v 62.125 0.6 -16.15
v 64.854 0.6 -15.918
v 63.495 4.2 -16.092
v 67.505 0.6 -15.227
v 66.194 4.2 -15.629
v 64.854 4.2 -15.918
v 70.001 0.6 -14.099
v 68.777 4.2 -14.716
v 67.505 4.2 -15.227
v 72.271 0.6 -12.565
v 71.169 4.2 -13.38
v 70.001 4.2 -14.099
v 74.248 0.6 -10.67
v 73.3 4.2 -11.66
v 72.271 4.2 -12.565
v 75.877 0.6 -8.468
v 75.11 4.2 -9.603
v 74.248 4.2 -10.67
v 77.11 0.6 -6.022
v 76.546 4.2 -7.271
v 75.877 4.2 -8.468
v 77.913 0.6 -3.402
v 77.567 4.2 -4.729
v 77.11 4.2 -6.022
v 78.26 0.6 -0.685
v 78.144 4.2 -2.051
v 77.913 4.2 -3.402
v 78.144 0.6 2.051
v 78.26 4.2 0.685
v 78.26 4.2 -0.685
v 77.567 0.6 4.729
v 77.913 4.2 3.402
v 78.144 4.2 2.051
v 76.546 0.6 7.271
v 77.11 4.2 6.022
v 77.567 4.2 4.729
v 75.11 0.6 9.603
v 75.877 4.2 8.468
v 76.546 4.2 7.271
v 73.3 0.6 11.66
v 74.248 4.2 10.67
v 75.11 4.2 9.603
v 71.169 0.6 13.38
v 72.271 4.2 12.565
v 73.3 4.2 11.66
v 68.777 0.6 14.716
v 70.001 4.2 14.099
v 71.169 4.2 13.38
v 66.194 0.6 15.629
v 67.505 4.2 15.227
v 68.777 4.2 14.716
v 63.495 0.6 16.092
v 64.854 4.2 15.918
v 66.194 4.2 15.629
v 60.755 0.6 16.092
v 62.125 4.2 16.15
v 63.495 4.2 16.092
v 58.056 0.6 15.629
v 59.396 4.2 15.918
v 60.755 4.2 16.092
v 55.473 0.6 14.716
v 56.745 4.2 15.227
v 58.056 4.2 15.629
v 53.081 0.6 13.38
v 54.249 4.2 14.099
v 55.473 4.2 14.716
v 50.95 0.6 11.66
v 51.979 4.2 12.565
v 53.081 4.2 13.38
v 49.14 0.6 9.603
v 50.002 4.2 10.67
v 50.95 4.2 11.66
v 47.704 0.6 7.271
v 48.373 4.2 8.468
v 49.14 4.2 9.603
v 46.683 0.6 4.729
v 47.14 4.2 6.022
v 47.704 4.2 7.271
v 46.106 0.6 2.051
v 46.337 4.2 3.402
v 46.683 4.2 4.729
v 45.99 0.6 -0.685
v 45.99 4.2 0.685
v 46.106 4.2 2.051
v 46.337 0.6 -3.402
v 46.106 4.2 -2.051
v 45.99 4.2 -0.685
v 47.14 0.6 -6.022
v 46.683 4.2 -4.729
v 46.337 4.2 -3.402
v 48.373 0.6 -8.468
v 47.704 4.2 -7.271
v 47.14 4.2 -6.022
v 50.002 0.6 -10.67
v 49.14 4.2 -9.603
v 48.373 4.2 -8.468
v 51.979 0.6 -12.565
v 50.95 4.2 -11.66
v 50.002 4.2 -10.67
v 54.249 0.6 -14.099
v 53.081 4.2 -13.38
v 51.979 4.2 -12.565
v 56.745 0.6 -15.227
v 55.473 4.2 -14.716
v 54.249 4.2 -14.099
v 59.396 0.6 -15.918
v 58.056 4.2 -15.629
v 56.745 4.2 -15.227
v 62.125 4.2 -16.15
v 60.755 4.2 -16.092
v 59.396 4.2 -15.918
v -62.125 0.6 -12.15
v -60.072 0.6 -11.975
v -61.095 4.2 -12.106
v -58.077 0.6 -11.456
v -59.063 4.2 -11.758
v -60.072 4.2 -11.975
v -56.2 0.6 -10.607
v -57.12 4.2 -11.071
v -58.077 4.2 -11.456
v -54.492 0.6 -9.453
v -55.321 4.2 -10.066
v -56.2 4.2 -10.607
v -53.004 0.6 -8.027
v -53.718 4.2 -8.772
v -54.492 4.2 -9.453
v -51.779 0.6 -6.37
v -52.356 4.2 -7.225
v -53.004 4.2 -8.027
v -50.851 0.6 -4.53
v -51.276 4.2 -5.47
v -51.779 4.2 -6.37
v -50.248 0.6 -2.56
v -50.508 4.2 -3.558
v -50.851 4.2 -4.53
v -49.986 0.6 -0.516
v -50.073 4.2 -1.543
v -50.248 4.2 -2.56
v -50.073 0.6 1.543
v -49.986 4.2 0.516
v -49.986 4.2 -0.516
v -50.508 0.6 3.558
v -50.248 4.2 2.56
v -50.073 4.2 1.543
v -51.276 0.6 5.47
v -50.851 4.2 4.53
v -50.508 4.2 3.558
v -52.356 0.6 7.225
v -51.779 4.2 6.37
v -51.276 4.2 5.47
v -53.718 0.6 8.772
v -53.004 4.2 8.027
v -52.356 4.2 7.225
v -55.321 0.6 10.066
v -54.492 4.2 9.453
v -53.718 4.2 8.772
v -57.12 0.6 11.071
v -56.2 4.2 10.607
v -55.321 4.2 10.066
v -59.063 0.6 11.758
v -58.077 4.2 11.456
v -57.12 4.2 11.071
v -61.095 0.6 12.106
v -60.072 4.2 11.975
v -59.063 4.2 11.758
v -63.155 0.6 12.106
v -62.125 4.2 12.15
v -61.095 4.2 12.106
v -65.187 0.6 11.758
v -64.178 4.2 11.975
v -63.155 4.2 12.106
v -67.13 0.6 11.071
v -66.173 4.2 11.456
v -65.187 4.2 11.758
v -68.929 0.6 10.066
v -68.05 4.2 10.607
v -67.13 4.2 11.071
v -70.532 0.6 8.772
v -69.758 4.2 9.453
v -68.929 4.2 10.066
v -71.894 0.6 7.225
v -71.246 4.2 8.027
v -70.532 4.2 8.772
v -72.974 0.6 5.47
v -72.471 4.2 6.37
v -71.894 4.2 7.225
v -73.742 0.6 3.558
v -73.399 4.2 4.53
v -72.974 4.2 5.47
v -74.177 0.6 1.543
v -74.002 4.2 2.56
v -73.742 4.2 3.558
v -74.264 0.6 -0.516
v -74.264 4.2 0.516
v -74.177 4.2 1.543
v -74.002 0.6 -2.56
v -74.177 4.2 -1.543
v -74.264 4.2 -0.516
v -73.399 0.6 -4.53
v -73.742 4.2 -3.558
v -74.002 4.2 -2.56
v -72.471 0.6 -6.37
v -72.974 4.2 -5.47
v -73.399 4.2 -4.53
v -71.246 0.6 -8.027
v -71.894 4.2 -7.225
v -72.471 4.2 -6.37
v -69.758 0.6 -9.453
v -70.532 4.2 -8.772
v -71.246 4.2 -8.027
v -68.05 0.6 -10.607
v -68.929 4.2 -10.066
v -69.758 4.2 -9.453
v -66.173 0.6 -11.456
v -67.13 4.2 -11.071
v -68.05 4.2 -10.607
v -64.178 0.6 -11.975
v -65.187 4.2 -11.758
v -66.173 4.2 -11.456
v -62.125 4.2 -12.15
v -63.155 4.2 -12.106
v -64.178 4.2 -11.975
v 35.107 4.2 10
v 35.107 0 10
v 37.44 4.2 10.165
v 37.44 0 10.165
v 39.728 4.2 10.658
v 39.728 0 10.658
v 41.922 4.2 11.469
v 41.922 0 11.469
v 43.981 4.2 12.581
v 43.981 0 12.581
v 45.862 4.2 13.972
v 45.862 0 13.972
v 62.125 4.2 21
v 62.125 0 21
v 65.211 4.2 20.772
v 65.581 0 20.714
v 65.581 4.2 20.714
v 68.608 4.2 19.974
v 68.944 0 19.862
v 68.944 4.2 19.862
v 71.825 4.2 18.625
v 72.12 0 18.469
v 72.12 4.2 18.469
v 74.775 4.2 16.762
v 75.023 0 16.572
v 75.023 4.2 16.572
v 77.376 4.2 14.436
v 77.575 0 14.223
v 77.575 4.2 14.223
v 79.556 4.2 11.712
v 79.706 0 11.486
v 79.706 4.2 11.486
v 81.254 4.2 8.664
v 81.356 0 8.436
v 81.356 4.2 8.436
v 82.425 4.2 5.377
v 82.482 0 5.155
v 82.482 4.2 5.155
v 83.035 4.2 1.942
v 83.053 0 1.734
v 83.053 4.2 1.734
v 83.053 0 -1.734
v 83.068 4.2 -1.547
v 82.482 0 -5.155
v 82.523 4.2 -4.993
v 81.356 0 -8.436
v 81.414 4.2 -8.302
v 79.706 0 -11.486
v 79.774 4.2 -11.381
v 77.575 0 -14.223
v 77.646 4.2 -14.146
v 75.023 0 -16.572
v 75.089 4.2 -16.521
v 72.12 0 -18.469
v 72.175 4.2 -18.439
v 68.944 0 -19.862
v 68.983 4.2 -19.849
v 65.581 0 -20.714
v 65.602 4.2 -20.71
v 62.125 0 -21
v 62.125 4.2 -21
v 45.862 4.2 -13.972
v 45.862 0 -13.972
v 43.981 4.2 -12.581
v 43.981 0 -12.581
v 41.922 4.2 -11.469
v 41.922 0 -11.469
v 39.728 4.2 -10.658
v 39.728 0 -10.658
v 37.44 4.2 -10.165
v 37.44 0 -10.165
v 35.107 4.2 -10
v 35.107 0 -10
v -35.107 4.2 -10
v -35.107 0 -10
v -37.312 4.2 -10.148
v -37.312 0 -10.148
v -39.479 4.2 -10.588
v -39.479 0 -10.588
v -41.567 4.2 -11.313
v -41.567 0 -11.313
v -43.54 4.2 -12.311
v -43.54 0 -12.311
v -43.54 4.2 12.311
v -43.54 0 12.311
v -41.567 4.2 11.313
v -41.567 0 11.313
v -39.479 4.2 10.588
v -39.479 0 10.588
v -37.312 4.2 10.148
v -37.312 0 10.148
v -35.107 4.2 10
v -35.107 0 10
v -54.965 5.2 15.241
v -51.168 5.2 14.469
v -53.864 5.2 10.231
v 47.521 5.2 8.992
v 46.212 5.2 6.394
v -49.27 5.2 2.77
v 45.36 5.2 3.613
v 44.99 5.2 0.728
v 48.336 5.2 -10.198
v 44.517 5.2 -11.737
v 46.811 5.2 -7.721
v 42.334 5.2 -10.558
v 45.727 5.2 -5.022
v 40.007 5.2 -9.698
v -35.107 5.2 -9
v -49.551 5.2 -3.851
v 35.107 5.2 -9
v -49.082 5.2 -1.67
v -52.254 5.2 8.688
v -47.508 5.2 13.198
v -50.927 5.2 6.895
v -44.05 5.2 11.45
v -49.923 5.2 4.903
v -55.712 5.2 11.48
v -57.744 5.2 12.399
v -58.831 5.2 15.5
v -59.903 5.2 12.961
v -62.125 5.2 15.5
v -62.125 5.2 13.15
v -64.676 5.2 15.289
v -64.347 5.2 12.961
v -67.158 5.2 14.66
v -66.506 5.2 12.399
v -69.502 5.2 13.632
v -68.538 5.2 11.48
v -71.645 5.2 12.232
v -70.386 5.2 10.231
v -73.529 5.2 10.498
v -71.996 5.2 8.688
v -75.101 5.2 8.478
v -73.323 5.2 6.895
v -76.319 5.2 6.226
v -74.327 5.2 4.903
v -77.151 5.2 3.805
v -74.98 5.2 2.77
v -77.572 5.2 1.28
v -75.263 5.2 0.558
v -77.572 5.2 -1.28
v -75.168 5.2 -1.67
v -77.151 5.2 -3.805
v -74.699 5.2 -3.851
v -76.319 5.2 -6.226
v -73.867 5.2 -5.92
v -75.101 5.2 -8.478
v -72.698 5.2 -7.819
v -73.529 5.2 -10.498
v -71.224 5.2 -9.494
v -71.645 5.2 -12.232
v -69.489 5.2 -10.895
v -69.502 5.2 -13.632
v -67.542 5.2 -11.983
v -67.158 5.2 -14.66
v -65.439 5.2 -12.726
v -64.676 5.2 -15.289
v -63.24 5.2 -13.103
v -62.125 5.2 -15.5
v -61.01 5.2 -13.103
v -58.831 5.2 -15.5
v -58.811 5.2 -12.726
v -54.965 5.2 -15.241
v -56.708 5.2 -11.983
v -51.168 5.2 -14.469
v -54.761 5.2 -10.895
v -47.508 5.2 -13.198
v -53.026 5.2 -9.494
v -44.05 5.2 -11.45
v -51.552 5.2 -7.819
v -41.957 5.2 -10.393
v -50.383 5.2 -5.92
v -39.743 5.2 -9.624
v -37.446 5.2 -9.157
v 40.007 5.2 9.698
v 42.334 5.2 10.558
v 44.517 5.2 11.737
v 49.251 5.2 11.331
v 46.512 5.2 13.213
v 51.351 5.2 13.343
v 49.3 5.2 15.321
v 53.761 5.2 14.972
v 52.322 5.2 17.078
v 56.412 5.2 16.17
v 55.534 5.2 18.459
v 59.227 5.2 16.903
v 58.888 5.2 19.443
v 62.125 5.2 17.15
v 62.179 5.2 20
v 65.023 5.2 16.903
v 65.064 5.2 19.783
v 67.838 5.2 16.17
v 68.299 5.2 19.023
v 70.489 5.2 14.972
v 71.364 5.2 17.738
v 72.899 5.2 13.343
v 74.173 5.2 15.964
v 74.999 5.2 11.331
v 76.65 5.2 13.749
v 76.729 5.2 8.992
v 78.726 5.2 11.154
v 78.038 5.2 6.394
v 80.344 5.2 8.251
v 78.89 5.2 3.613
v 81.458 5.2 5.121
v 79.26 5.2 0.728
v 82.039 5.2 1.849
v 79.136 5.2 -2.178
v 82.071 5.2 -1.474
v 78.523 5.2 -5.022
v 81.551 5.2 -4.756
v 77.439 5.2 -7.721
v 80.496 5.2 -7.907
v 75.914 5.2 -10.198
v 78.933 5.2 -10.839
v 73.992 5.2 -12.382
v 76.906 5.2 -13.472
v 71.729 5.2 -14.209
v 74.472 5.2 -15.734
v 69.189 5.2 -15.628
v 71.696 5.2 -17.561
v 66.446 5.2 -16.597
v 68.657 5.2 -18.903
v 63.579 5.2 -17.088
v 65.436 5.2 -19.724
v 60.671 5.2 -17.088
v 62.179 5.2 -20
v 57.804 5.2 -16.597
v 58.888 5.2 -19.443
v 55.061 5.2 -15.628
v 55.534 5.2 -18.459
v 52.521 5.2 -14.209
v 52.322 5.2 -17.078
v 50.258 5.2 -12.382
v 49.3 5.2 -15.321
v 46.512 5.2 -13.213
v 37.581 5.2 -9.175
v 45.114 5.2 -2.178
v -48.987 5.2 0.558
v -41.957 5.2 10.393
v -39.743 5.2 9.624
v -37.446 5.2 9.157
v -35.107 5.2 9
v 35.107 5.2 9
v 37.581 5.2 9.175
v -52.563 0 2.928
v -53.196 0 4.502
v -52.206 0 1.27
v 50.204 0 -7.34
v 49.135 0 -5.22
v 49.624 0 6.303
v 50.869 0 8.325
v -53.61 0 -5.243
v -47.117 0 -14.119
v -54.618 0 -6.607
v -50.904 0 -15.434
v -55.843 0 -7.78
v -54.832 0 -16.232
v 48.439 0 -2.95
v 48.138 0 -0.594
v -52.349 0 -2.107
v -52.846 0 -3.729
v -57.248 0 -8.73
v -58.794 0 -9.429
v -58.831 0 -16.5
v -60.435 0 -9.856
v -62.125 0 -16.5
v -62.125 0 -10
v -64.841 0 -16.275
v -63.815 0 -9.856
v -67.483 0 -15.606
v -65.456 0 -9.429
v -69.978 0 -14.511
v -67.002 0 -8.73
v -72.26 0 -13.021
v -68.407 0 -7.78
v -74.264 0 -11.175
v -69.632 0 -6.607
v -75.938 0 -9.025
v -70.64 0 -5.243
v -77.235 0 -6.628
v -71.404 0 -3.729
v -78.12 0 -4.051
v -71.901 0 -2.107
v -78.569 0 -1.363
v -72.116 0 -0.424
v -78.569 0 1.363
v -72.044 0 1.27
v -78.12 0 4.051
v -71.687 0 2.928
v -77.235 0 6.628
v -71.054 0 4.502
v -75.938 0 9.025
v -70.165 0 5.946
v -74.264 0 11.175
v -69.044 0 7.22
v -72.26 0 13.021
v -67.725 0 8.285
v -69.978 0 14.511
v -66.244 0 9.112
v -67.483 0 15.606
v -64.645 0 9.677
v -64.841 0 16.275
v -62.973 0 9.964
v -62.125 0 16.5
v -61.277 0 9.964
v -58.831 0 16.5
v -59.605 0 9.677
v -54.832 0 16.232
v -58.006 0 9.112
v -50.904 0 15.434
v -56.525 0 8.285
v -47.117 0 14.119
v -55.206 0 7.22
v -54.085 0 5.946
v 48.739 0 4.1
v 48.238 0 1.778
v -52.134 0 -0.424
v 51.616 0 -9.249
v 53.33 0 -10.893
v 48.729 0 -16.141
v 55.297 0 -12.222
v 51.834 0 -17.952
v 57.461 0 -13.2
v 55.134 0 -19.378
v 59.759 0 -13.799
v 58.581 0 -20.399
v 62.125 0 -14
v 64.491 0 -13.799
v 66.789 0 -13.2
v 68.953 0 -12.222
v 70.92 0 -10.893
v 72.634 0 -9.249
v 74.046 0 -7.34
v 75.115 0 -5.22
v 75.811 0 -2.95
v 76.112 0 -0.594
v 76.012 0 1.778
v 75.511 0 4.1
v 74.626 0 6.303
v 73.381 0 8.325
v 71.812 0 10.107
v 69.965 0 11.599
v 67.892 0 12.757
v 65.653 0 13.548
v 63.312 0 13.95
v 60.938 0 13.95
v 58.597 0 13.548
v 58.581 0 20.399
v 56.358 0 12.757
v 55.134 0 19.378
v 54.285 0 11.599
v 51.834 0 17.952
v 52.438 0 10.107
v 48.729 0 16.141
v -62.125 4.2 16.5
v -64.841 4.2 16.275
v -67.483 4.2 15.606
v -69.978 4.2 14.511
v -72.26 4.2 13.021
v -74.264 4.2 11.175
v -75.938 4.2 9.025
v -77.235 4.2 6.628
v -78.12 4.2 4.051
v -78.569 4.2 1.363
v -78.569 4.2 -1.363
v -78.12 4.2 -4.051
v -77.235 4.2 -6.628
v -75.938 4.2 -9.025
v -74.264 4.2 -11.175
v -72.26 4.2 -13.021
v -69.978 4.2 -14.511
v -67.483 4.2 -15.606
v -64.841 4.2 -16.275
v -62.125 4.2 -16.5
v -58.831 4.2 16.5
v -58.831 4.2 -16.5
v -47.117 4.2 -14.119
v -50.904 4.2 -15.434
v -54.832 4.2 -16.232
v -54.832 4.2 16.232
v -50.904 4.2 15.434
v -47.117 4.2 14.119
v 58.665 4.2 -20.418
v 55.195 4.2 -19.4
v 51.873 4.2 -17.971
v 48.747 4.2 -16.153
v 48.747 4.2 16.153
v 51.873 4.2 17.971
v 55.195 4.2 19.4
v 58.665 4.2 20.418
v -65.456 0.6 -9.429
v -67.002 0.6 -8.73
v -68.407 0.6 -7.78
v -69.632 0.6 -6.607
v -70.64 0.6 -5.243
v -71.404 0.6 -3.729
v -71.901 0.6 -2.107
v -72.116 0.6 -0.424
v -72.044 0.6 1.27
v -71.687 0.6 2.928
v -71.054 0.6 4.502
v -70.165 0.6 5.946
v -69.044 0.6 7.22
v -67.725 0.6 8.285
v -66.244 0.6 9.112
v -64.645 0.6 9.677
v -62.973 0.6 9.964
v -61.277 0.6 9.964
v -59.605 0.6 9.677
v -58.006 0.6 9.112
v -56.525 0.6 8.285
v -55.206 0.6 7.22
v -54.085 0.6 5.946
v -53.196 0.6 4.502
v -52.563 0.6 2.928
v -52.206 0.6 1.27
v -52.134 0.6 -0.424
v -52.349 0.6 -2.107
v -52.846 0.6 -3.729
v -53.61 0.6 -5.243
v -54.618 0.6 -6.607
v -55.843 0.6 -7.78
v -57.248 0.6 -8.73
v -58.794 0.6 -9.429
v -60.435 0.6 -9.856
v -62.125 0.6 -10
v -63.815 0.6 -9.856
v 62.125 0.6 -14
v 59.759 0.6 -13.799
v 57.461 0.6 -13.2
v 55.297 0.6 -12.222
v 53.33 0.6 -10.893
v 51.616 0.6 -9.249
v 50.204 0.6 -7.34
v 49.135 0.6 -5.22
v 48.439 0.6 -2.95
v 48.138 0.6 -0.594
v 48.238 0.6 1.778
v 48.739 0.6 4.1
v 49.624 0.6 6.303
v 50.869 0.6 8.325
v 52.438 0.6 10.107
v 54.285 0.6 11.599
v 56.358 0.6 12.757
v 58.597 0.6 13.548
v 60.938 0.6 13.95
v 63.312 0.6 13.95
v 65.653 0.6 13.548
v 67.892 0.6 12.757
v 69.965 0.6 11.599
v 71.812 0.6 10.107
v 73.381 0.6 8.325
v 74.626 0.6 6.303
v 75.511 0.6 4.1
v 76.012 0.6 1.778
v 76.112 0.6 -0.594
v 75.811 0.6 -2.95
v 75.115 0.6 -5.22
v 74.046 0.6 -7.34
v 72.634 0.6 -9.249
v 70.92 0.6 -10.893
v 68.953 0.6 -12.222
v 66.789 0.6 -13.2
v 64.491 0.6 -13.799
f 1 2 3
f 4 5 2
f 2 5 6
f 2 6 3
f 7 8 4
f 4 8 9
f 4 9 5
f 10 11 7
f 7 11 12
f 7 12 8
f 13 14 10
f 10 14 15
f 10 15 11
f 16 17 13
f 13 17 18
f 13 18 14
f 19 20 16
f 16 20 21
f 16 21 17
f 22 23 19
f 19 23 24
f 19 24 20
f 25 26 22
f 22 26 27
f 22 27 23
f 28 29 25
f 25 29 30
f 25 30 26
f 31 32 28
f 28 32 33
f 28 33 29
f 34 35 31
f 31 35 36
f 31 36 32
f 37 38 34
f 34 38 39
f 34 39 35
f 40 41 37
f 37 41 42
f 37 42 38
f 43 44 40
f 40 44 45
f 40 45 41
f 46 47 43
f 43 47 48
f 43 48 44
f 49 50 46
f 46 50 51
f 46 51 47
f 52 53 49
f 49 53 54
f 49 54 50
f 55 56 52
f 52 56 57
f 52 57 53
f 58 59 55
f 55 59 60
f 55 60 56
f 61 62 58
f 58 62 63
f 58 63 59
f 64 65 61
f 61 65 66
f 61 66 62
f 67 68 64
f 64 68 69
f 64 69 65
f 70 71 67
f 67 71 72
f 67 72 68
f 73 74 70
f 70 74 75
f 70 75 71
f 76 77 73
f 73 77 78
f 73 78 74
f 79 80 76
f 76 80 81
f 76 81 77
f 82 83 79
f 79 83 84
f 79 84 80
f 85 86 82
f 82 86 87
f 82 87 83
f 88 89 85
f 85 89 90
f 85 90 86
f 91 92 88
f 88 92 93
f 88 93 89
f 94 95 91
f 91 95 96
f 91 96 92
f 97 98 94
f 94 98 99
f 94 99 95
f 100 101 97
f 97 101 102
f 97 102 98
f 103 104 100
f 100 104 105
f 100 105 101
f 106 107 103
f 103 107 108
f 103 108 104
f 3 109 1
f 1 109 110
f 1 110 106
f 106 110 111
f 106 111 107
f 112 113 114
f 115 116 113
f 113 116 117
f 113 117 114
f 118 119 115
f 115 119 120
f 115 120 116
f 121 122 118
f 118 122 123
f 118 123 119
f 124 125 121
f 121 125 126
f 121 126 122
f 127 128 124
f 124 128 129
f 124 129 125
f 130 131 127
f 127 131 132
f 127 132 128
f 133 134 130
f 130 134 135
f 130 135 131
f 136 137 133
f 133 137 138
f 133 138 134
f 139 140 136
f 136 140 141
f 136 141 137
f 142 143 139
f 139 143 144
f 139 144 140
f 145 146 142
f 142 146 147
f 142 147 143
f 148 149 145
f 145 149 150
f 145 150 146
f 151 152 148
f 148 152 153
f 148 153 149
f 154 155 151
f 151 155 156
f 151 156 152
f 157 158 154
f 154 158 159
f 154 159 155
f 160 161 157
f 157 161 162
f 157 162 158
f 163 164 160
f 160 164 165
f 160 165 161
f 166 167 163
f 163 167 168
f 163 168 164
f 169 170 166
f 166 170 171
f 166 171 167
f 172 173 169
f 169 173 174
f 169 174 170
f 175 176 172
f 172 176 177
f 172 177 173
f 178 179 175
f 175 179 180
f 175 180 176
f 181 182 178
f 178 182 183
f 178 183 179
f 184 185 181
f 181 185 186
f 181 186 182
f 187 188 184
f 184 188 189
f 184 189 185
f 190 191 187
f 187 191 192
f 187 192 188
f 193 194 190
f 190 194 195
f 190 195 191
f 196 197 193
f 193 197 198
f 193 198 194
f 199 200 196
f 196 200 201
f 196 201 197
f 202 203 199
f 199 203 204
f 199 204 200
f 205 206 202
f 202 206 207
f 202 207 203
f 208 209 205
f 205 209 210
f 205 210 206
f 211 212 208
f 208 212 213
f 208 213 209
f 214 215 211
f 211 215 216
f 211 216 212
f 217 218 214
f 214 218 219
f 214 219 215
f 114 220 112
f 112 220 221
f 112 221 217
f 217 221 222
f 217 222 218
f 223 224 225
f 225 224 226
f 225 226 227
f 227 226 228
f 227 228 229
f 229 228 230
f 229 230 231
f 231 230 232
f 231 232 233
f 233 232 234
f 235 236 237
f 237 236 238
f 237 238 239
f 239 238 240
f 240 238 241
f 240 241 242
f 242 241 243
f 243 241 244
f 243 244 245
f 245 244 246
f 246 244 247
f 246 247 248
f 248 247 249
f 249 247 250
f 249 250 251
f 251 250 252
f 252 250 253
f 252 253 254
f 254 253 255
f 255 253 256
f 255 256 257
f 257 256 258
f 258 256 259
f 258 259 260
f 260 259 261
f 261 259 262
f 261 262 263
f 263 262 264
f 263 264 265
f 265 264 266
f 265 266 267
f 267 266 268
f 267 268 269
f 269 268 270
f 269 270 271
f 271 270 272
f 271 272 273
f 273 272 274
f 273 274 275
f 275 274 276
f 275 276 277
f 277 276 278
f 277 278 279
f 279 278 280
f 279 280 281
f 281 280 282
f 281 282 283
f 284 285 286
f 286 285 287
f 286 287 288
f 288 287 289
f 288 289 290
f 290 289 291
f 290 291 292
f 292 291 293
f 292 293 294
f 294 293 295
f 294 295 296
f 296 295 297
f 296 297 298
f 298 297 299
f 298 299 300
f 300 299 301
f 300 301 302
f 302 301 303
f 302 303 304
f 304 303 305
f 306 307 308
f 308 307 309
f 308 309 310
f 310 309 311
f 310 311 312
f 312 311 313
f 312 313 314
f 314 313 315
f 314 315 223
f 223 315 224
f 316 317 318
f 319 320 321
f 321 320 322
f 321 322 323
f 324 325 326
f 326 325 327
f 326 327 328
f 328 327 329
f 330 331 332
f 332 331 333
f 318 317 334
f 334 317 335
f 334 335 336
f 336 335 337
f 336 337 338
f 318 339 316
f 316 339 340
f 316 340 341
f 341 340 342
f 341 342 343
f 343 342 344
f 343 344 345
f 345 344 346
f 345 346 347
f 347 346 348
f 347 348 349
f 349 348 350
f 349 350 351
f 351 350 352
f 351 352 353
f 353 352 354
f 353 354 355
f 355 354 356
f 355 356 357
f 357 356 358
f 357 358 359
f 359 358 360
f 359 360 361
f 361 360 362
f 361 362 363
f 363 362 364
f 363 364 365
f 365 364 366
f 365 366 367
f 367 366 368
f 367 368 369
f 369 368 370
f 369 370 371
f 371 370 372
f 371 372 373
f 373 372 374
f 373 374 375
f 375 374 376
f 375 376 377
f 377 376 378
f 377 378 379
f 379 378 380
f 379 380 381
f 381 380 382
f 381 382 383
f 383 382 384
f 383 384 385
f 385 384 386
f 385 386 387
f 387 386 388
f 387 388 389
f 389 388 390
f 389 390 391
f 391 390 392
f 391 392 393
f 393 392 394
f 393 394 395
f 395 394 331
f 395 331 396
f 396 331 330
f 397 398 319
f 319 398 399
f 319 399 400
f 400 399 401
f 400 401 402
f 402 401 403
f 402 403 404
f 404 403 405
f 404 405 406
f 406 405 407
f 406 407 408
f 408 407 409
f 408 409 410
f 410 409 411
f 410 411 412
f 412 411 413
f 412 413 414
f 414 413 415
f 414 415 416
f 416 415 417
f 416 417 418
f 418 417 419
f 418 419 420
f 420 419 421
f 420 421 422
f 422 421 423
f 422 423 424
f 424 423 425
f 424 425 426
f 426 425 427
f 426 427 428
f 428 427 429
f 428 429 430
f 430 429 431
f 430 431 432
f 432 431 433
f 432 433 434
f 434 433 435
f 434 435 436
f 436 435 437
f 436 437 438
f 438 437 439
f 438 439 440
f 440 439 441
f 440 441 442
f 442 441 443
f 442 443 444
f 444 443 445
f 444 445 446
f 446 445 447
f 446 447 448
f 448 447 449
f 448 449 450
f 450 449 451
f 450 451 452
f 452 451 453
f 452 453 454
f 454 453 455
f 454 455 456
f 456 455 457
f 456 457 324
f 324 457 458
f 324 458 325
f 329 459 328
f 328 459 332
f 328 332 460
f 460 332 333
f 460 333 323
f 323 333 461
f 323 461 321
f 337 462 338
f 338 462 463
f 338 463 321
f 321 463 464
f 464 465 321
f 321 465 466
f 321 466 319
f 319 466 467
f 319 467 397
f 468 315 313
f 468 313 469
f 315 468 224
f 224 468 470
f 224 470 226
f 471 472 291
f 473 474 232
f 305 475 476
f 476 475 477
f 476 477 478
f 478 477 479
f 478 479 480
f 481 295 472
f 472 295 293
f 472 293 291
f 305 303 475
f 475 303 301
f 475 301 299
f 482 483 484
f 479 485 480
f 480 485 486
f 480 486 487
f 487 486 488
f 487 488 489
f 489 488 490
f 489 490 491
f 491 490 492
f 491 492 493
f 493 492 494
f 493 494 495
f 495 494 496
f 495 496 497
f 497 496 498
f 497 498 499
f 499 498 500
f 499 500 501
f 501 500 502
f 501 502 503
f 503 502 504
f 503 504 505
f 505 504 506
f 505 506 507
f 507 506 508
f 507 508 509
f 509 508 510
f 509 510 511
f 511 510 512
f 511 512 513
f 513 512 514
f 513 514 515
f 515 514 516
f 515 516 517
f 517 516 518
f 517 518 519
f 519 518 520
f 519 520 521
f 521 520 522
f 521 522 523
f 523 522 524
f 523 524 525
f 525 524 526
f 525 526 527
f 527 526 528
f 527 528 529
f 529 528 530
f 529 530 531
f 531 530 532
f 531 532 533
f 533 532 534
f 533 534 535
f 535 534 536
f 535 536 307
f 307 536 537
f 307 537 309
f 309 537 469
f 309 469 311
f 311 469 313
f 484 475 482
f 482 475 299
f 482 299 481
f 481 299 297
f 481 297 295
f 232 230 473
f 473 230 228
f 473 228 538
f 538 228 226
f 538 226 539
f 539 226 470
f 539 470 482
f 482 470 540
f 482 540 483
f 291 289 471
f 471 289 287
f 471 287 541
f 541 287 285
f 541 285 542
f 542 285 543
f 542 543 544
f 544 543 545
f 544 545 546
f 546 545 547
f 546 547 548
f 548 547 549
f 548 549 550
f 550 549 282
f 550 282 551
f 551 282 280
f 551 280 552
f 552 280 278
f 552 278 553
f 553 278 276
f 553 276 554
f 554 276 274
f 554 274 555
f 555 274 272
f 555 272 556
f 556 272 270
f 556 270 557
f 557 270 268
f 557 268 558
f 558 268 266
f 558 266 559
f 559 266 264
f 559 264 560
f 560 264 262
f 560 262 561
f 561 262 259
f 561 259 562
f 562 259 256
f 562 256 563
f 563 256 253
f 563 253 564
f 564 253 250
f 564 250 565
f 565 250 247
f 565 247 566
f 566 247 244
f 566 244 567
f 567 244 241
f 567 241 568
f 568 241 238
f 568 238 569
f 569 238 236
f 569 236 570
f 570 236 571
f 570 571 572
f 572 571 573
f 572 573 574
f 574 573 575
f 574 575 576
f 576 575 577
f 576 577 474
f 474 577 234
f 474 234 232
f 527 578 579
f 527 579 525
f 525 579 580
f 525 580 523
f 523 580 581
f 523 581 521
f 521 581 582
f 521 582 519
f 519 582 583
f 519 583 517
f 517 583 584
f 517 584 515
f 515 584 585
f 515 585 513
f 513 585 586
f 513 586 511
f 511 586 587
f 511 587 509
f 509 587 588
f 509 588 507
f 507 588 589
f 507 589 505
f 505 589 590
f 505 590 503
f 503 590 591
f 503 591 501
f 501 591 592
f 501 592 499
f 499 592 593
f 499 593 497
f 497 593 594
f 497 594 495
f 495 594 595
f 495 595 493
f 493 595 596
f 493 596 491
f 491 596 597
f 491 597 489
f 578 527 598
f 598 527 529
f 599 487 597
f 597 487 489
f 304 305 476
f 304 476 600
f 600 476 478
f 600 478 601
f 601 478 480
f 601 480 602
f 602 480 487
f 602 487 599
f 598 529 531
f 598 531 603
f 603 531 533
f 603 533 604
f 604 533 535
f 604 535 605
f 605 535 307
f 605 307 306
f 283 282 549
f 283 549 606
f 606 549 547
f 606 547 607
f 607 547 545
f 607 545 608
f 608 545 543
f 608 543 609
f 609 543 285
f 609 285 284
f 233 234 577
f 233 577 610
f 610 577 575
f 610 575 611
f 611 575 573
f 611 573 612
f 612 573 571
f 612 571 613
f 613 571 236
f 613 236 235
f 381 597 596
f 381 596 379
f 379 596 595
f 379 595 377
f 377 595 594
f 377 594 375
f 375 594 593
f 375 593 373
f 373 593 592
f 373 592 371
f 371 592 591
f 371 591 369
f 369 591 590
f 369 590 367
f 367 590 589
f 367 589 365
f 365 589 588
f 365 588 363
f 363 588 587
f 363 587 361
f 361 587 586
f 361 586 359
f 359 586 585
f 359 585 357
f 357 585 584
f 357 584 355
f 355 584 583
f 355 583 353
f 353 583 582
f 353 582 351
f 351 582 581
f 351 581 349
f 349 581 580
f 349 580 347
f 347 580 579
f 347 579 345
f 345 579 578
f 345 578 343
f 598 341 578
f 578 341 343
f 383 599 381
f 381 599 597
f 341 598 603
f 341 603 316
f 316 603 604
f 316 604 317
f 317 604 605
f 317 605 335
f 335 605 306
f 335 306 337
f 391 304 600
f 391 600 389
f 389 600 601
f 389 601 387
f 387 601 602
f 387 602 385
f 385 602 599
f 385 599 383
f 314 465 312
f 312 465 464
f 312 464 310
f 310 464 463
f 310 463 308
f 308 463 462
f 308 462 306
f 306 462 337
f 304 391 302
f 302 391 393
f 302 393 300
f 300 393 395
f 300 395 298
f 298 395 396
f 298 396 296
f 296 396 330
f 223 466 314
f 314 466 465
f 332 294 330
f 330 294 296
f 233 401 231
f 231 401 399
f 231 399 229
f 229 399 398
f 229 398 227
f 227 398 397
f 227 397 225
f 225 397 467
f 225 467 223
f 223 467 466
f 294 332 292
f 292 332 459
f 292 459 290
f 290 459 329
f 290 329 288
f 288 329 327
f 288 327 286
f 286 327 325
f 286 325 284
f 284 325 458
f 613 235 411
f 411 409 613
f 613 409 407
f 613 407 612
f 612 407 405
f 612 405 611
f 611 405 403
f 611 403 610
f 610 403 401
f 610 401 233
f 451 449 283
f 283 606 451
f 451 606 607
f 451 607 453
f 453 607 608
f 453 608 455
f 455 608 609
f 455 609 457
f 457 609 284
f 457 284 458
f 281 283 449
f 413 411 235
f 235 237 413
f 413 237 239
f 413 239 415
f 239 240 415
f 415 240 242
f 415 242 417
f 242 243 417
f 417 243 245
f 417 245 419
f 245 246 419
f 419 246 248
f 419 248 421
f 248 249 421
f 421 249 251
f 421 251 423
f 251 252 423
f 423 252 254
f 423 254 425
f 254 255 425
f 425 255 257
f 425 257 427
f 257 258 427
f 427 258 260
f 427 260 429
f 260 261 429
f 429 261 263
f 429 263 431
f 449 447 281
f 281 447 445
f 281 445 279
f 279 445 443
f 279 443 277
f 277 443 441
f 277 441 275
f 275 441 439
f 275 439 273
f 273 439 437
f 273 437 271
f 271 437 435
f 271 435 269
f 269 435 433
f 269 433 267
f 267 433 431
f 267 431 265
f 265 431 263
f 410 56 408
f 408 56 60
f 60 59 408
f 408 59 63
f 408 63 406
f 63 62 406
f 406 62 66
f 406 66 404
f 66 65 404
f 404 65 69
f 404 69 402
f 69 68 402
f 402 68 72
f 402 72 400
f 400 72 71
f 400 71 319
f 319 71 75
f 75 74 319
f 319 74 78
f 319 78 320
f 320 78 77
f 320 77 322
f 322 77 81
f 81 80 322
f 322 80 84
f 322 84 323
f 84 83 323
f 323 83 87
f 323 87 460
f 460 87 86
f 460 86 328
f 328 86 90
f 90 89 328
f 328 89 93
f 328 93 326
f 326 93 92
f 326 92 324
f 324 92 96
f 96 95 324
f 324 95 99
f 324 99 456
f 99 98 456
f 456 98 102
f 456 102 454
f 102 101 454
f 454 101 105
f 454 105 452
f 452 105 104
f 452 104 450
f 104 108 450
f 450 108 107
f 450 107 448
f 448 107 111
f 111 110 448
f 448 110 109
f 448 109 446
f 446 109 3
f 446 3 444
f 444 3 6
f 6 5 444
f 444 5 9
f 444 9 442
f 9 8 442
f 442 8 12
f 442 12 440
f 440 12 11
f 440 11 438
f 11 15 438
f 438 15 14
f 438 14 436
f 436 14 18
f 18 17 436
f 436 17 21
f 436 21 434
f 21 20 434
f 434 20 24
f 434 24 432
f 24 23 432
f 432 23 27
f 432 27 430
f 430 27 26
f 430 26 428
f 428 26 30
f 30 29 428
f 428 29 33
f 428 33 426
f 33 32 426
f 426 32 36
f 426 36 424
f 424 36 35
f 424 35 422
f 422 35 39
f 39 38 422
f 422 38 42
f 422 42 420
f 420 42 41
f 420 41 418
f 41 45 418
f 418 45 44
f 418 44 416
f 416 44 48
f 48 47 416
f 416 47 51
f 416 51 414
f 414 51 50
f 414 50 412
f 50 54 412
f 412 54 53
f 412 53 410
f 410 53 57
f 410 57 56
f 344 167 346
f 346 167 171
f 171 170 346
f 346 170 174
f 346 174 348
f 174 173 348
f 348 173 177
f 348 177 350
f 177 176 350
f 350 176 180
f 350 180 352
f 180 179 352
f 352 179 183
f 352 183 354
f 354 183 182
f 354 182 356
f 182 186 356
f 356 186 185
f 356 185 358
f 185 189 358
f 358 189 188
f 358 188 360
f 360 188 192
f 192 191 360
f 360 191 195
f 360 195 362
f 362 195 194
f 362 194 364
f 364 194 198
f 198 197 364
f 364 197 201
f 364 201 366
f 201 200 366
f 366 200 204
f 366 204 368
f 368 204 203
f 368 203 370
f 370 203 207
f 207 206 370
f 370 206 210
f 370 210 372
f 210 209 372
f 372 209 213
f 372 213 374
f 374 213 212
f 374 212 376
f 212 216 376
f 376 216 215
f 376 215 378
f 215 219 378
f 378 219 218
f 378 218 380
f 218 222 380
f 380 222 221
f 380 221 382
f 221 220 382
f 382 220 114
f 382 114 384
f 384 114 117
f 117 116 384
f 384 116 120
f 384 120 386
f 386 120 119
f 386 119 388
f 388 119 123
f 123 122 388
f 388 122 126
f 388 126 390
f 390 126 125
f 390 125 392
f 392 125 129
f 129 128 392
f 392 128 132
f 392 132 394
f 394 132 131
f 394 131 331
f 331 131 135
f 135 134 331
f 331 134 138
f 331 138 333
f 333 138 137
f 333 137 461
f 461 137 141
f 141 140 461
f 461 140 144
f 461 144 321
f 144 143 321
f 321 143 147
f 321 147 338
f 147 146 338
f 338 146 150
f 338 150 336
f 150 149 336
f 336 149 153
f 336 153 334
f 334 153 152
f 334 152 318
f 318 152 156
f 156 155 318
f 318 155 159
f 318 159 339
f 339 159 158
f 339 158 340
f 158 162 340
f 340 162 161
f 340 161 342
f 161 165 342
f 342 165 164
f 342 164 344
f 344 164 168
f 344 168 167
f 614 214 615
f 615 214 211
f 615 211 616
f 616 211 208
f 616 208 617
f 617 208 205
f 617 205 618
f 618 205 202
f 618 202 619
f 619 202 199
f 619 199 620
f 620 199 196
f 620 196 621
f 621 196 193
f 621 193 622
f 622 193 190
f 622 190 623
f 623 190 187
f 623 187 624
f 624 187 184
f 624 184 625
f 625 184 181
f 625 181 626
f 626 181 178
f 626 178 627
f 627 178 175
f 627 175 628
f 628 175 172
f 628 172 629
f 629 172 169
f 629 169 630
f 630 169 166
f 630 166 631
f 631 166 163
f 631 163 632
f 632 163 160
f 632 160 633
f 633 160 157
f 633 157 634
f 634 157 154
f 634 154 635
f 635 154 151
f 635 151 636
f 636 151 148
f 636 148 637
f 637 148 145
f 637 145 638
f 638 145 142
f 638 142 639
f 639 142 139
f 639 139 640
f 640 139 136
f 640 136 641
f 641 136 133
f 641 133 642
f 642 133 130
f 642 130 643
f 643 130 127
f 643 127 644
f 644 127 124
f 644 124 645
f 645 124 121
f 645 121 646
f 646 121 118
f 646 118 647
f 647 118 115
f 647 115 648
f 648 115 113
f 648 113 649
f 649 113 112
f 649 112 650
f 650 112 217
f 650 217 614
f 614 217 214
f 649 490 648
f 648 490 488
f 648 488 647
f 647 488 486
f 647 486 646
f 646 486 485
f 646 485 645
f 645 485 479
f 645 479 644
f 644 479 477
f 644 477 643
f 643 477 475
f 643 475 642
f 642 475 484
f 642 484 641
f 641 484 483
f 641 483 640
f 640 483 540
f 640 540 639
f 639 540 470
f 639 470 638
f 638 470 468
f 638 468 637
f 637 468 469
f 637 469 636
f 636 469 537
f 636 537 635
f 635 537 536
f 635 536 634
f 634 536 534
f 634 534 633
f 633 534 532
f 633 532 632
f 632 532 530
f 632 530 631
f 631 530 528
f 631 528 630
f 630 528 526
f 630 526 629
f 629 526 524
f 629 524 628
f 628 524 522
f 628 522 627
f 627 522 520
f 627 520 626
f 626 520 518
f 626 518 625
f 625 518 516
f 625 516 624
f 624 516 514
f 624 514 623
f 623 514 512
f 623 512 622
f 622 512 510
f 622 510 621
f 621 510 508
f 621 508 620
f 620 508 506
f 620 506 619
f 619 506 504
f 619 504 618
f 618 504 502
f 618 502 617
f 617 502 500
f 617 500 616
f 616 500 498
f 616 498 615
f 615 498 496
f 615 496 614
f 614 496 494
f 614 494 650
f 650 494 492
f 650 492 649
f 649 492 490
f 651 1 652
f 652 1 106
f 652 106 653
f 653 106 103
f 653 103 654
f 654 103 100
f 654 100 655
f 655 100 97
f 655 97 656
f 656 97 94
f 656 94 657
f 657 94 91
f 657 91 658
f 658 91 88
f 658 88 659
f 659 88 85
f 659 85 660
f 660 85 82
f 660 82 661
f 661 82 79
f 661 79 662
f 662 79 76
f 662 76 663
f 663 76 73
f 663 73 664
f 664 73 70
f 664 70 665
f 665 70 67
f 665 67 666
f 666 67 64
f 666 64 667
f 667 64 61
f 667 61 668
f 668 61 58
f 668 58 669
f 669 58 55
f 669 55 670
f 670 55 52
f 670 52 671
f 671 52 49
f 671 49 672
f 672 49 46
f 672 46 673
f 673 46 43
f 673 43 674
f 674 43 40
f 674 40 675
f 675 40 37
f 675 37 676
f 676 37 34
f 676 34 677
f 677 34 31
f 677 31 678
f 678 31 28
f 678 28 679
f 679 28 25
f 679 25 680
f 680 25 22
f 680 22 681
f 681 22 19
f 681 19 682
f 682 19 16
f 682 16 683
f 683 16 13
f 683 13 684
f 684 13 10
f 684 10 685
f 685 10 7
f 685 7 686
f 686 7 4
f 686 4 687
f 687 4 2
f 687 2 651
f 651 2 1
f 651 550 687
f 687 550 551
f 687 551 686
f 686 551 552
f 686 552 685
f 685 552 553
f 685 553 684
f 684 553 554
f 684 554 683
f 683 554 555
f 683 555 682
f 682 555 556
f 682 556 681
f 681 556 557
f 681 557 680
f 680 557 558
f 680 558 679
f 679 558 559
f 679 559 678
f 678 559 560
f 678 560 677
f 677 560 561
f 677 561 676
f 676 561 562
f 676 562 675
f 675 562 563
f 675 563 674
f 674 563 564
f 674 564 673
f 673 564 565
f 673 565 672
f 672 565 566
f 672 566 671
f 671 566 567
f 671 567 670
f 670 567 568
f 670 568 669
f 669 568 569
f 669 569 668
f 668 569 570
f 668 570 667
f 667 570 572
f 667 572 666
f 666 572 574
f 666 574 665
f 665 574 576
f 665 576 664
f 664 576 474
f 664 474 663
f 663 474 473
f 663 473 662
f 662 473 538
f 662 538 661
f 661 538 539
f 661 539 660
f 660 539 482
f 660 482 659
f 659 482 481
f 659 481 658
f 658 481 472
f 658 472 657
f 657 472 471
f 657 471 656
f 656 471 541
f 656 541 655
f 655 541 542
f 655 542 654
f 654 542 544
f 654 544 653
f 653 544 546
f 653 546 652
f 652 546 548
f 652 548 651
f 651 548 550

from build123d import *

# Parameters (mm, degrees)
SKETCH1_R           = 12.15
SKETCH1_R_2         = 16.15
BOSS_EXTRUDE1_DEPTH = 5.2
CUT_EXTRUDE1_DEPTH  = 86.894153614
FILLET1_R           = 30
CHAMFER1_SIZE       = 1
SKETCH2_R           = 14.75534968
SKETCH2_R_2         = 10
SKETCH2_R_3         = 19.025242353
SKETCH2_R_4         = 14
BOSS_EXTRUDE2_DEPTH = 0.6


with BuildPart() as part:
    # Sketch1 → Boss-Extrude1 (new body)
    with BuildSketch(Plane(origin=(0, 0, 0), x_dir=(1, 0, 0), z_dir=(0, 1, 0))):
        with BuildLine():
            Line((50.6952797, -21), (62.125, -21))
            ThreePointArc((62.125, -21), (83.125, 0), (62.125, 21))
            Line((62.125, 21), (50.6952797, 21))
            ThreePointArc((50.6952797, 21), (44.646090821, 13.026866227), (35.106613419, 10))
            Line((35.106613419, 10), (-35.106613419, 10))
            ThreePointArc((-35.106613419, 10), (-44.646090821, 13.026866227), (-50.6952797, 21))
            Line((-50.6952797, 21), (-62.125, 21))
            ThreePointArc((-62.125, 21), (-83.125, 0), (-62.125, -21))
            Line((-62.125, -21), (-50.6952797, -21))
            ThreePointArc((-50.6952797, -21), (-44.646090821, -13.026866227), (-35.106613419, -10))
            Line((-35.106613419, -10), (35.106613419, -10))
            ThreePointArc((35.106613419, -10), (44.646090821, -13.026866227), (50.6952797, -21))
        make_face()
        with Locations(Location((-62.125, 0, 0), (0, 0, 270))):
            Circle(SKETCH1_R, mode=Mode.SUBTRACT)
        with Locations(Location((62.125, 0, 0), (0, 0, 270))):
            Circle(SKETCH1_R_2, mode=Mode.SUBTRACT)
    extrude(amount=BOSS_EXTRUDE1_DEPTH)

    # Sketch4 → Cut-Extrude1 (cut, through all)
    with BuildSketch(Plane(origin=(0, 5.2, 0), x_dir=(1, 0, 0), z_dir=(0, 1, 0))):
        with BuildLine():
            Line((-62.125, 16.5), (-40.410985901, 16.5))
            Line((-40.410985901, 16.5), (-43.407950199, 33.342917206))
            Line((-43.407950199, 33.342917206), (-92.984497382, 23.090976894))
            Line((-92.984497382, 23.090976894), (-92.984497382, -9.501012459))
            Line((-92.984497382, -9.501012459), (-86.710921967, -27.097626428))
            Line((-86.710921967, -27.097626428), (-50.736883487, -31.973137348))
            Line((-50.736883487, -31.973137348), (-37.899444956, -29.584754809))
            Line((-37.899444956, -29.584754809), (-38.970543198, -16.5))
            Line((-38.970543198, -16.5), (-62.125, -16.5))
            ThreePointArc((-62.125, -16.5), (-78.625, 0), (-62.125, 16.5))
        make_face()
    extrude(amount=-CUT_EXTRUDE1_DEPTH, mode=Mode.SUBTRACT)

    # Fillet1
    # the kernel refuses this fillet: 30 mm, written as the material it takes off along each edge
    with BuildSketch(Plane(origin=(50.6952797, -28.574300751, -21), x_dir=(1, 0, 0), z_dir=(0, 1, 0))) as fillet1_piece_1:
        with BuildLine():
            CenterArc((14.667456891, -29.824772619), FILLET1_R, 96.195688925, 34.34815674)
            ThreePointArc((-4.833435899, -7.027510056), (-1.956106094, -3.830558257), (0, 0))
            Line((0, 0), (11.4297203, 0))
        make_face()
    extrude(amount=62.348601502, mode=Mode.SUBTRACT)
    with BuildSketch(Plane(origin=(50.6952797, -28.574300751, 21), x_dir=(1, 0, 0), z_dir=(0, 1, 0))) as fillet1_piece_2:
        with BuildLine():
            CenterArc((14.667456891, 29.824772619), FILLET1_R, 229.456154336, 34.34815674)
            ThreePointArc((-4.833435899, 7.027510056), (-1.956106094, 3.830558257), (0, 0))
            Line((0, 0), (11.4297203, 0))
        make_face()
    extrude(amount=62.348601502, mode=Mode.SUBTRACT)
    with BuildSketch(Plane(origin=(-48.253657182, 31.64326437, -16.5), x_dir=(-1, 0, 0), z_dir=(0, -1, 0))) as fillet1_piece_3:
        with BuildLine():
            CenterArc((10.577305748, -30), FILLET1_R, 90, 30.643820853)
            ThreePointArc((-4.713681591, -4.189426465), (-2.15539677, -2.321365496), (0, 0))
            Line((0, 0), (10.577305748, 0))
        make_face()
    extrude(amount=58.086528739, mode=Mode.SUBTRACT)
    with BuildSketch(Plane(origin=(-48.253657182, 31.64326437, 16.5), x_dir=(0.7474496885574631, 0, -0.6643184199428399), z_dir=(0, -1, 0))) as fillet1_piece_4:
        with BuildLine():
            CenterArc((12.023548711, -29.450189698), FILLET1_R, 100.986236803, 30.643820853)
            Line((-7.906003887, -7.026699042), (0, 0))
            ThreePointArc((0, 0), (3.153176503, -0.30323414), (6.306353006, 0))
        make_face()
    extrude(amount=58.086528739, mode=Mode.SUBTRACT)

    # Chamfer1
    # the kernel refuses this chamfer: 1 mm, written as the material it takes off along each edge
    with BuildSketch(Plane(origin=(62.125, 5.2, 0), x_dir=(-0.12235070165055903, 0, 0.9924869297908239), z_dir=(-0.9924869297908239, 0, -0.12235070165055903))) as chamfer1_piece_1:
        Polygon((21, -CHAMFER1_SIZE), (21 - CHAMFER1_SIZE, 0), (21, 0), align=None)
    revolve(axis=Axis((62.125, 5.2, 0), (0, 1, 0)), revolution_arc=194.055575488, mode=Mode.SUBTRACT)
    with BuildSketch(Plane(origin=(35.106613419, 5.2, -26.545750746), x_dir=(0.6500297596931421, 0, 0.7599087520967739), z_dir=(0.7599087520967739, 0, -0.6500297596931421))) as chamfer1_piece_2:
        Polygon((16.545750746 + CHAMFER1_SIZE, 0), (16.545750746, CHAMFER1_SIZE), (16.545750746, 0), align=None)
    revolve(axis=Axis((35.106613419, 5.2, -26.545750746), (0, -1, 0)), revolution_arc=40.543845664, mode=Mode.SUBTRACT)
    with BuildSketch(Plane(origin=(35.106613419, 5.2, -10), x_dir=(0, 0, 1), z_dir=(-1, 0, 0)), Plane(origin=(-35.106613419, 5.2, 10), x_dir=(0, 0, -1), z_dir=(1, 0, 0))) as chamfer1_piece_3:
        Polygon((CHAMFER1_SIZE, 0), (0, -CHAMFER1_SIZE), (0, 0), align=None)
    extrude(amount=70.213226838, mode=Mode.SUBTRACT)
    with BuildSketch(Plane(origin=(-62.125, 5.2, 0), x_dir=(0, 0, 1), z_dir=(1, 0, 0))) as chamfer1_piece_4:
        Polygon((16.5 - CHAMFER1_SIZE, 0), (16.5, CHAMFER1_SIZE), (16.5, 0), align=None)
    revolve(axis=Axis((-62.125, 5.2, 0), (0, -1, 0)), revolution_arc=180, mode=Mode.SUBTRACT)
    with BuildSketch(Plane(origin=(-62.125, 5.2, -16.5), x_dir=(0, 0, 1), z_dir=(1, 0, 0)), Plane(origin=(-58.83096293, 5.2, 16.5), x_dir=(0, 0, -1), z_dir=(-1, 0, 0))) as chamfer1_piece_5:
        Polygon((CHAMFER1_SIZE, 0), (0, CHAMFER1_SIZE), (0, 0), align=None)
    extrude(amount=3.29403707, mode=Mode.SUBTRACT)
    with BuildSketch(Plane(origin=(-35.106613419, 5.2, 26.545750746), x_dir=(-0.5096995779497587, 0, -0.8603524511720982), z_dir=(-0.8603524511720982, 0, 0.5096995779497587))) as chamfer1_piece_6:
        Polygon((16.545750746 + CHAMFER1_SIZE, 0), (16.545750746, CHAMFER1_SIZE), (16.545750746, 0), align=None)
    revolve(axis=Axis((-35.106613419, 5.2, 26.545750746), (0, -1, 0)), revolution_arc=30.643820853, mode=Mode.SUBTRACT)
    with BuildSketch(Plane(origin=(-62.125, 5.2, 0), x_dir=(0, 0, 1), z_dir=(-1, 0, 0))) as chamfer1_piece_7:
        Polygon((12.15 + CHAMFER1_SIZE, 0), (12.15, -CHAMFER1_SIZE), (12.15, 0), align=None)
    revolve(axis=Axis((-62.125, 5.2, 0), (0, 1, 0)), mode=Mode.SUBTRACT)
    with BuildSketch(Plane(origin=(62.125, 5.2, 0), x_dir=(0, 0, 1), z_dir=(-1, 0, 0))) as chamfer1_piece_8:
        Polygon((16.15 + CHAMFER1_SIZE, 0), (16.15, -CHAMFER1_SIZE), (16.15, 0), align=None)
    revolve(axis=Axis((62.125, 5.2, 0), (0, 1, 0)), mode=Mode.SUBTRACT)
    with BuildSketch(Plane(origin=(-35.106613419, 5.2, -26.545750746), x_dir=(0, 0, 1), z_dir=(1, 0, 0))) as chamfer1_piece_9:
        Polygon((16.545750746 + CHAMFER1_SIZE, 0), (16.545750746, CHAMFER1_SIZE), (16.545750746, 0), align=None)
    revolve(axis=Axis((-35.106613419, 5.2, -26.545750746), (0, -1, 0)), revolution_arc=30.643820853, mode=Mode.SUBTRACT)
    with BuildSketch(Plane(origin=(35.106613419, 5.2, 26.545750746), x_dir=(0, 0, -1), z_dir=(-1, 0, 0))) as chamfer1_piece_10:
        Polygon((16.545750746 + CHAMFER1_SIZE, 0), (16.545750746, CHAMFER1_SIZE), (16.545750746, 0), align=None)
    revolve(axis=Axis((35.106613419, 5.2, 26.545750746), (0, -1, 0)), revolution_arc=40.543845664, mode=Mode.SUBTRACT)
    with BuildSketch(Plane(origin=(65.362736591, 5.2, -8.824772619), x_dir=(0.14849692395329253, 0, 0.9889128695574804), z_dir=(0.9889128695574804, 0, -0.14849692395329253))) as chamfer1_piece_11:
        Polygon((30, CHAMFER1_SIZE), (30 - CHAMFER1_SIZE, 0), (30, 0), align=None)
    revolve(axis=Axis((65.362736591, 5.2, -8.824772619), (0, -1, 0)), revolution_arc=49.083676808, mode=Mode.SUBTRACT)
    with BuildSketch(Plane(origin=(65.362736591, 5.2, 8.824772619), x_dir=(-0.6500297596931309, 0, -0.7599087520967833), z_dir=(-0.7599087520967833, 0, 0.6500297596931309))) as chamfer1_piece_12:
        Polygon((30, CHAMFER1_SIZE), (30 - CHAMFER1_SIZE, 0), (30, 0), align=None)
    revolve(axis=Axis((65.362736591, 5.2, 8.824772619), (0, -1, 0)), revolution_arc=49.083676808, mode=Mode.SUBTRACT)
    with BuildSketch(Plane(origin=(-58.83096293, 5.2, -13.5), x_dir=(0, 0, 1), z_dir=(-1, 0, 0))) as chamfer1_piece_13:
        Polygon((30 - CHAMFER1_SIZE, 0), (30, -CHAMFER1_SIZE), (30, 0), align=None)
    revolve(axis=Axis((-58.83096293, 5.2, -13.5), (0, 1, 0)), revolution_arc=30.643820853, mode=Mode.SUBTRACT)
    with BuildSketch(Plane(origin=(-58.83096293, 5.2, 13.5), x_dir=(0.5096995779497117, 0, -0.8603524511721262), z_dir=(0.8603524511721262, 0, 0.5096995779497117))) as chamfer1_piece_14:
        Polygon((30 - CHAMFER1_SIZE, 0), (30, -CHAMFER1_SIZE), (30, 0), align=None)
    revolve(axis=Axis((-58.83096293, 5.2, 13.5), (0, 1, 0)), revolution_arc=30.643820853, mode=Mode.SUBTRACT)

    # Sketch2 → Boss-Extrude2 (add)
    # profile 1 of 2: a face of its own
    with BuildSketch(Plane.XZ):
        with Locations((-62.125, 0)):
            Circle(SKETCH2_R)
        with Locations(Location((-62.125, 0, 0), (0, 0, 270))):
            Circle(SKETCH2_R_2, mode=Mode.SUBTRACT)
    # profile 2 of 2: a face of its own
    with BuildSketch(Plane.XZ):
        with Locations((62.125, 0)):
            Circle(SKETCH2_R_3)
        with Locations(Location((62.125, 0, 0), (0, 0, 270))):
            Circle(SKETCH2_R_4, mode=Mode.SUBTRACT)
    extrude(amount=-BOSS_EXTRUDE2_DEPTH)


solid = part.part
